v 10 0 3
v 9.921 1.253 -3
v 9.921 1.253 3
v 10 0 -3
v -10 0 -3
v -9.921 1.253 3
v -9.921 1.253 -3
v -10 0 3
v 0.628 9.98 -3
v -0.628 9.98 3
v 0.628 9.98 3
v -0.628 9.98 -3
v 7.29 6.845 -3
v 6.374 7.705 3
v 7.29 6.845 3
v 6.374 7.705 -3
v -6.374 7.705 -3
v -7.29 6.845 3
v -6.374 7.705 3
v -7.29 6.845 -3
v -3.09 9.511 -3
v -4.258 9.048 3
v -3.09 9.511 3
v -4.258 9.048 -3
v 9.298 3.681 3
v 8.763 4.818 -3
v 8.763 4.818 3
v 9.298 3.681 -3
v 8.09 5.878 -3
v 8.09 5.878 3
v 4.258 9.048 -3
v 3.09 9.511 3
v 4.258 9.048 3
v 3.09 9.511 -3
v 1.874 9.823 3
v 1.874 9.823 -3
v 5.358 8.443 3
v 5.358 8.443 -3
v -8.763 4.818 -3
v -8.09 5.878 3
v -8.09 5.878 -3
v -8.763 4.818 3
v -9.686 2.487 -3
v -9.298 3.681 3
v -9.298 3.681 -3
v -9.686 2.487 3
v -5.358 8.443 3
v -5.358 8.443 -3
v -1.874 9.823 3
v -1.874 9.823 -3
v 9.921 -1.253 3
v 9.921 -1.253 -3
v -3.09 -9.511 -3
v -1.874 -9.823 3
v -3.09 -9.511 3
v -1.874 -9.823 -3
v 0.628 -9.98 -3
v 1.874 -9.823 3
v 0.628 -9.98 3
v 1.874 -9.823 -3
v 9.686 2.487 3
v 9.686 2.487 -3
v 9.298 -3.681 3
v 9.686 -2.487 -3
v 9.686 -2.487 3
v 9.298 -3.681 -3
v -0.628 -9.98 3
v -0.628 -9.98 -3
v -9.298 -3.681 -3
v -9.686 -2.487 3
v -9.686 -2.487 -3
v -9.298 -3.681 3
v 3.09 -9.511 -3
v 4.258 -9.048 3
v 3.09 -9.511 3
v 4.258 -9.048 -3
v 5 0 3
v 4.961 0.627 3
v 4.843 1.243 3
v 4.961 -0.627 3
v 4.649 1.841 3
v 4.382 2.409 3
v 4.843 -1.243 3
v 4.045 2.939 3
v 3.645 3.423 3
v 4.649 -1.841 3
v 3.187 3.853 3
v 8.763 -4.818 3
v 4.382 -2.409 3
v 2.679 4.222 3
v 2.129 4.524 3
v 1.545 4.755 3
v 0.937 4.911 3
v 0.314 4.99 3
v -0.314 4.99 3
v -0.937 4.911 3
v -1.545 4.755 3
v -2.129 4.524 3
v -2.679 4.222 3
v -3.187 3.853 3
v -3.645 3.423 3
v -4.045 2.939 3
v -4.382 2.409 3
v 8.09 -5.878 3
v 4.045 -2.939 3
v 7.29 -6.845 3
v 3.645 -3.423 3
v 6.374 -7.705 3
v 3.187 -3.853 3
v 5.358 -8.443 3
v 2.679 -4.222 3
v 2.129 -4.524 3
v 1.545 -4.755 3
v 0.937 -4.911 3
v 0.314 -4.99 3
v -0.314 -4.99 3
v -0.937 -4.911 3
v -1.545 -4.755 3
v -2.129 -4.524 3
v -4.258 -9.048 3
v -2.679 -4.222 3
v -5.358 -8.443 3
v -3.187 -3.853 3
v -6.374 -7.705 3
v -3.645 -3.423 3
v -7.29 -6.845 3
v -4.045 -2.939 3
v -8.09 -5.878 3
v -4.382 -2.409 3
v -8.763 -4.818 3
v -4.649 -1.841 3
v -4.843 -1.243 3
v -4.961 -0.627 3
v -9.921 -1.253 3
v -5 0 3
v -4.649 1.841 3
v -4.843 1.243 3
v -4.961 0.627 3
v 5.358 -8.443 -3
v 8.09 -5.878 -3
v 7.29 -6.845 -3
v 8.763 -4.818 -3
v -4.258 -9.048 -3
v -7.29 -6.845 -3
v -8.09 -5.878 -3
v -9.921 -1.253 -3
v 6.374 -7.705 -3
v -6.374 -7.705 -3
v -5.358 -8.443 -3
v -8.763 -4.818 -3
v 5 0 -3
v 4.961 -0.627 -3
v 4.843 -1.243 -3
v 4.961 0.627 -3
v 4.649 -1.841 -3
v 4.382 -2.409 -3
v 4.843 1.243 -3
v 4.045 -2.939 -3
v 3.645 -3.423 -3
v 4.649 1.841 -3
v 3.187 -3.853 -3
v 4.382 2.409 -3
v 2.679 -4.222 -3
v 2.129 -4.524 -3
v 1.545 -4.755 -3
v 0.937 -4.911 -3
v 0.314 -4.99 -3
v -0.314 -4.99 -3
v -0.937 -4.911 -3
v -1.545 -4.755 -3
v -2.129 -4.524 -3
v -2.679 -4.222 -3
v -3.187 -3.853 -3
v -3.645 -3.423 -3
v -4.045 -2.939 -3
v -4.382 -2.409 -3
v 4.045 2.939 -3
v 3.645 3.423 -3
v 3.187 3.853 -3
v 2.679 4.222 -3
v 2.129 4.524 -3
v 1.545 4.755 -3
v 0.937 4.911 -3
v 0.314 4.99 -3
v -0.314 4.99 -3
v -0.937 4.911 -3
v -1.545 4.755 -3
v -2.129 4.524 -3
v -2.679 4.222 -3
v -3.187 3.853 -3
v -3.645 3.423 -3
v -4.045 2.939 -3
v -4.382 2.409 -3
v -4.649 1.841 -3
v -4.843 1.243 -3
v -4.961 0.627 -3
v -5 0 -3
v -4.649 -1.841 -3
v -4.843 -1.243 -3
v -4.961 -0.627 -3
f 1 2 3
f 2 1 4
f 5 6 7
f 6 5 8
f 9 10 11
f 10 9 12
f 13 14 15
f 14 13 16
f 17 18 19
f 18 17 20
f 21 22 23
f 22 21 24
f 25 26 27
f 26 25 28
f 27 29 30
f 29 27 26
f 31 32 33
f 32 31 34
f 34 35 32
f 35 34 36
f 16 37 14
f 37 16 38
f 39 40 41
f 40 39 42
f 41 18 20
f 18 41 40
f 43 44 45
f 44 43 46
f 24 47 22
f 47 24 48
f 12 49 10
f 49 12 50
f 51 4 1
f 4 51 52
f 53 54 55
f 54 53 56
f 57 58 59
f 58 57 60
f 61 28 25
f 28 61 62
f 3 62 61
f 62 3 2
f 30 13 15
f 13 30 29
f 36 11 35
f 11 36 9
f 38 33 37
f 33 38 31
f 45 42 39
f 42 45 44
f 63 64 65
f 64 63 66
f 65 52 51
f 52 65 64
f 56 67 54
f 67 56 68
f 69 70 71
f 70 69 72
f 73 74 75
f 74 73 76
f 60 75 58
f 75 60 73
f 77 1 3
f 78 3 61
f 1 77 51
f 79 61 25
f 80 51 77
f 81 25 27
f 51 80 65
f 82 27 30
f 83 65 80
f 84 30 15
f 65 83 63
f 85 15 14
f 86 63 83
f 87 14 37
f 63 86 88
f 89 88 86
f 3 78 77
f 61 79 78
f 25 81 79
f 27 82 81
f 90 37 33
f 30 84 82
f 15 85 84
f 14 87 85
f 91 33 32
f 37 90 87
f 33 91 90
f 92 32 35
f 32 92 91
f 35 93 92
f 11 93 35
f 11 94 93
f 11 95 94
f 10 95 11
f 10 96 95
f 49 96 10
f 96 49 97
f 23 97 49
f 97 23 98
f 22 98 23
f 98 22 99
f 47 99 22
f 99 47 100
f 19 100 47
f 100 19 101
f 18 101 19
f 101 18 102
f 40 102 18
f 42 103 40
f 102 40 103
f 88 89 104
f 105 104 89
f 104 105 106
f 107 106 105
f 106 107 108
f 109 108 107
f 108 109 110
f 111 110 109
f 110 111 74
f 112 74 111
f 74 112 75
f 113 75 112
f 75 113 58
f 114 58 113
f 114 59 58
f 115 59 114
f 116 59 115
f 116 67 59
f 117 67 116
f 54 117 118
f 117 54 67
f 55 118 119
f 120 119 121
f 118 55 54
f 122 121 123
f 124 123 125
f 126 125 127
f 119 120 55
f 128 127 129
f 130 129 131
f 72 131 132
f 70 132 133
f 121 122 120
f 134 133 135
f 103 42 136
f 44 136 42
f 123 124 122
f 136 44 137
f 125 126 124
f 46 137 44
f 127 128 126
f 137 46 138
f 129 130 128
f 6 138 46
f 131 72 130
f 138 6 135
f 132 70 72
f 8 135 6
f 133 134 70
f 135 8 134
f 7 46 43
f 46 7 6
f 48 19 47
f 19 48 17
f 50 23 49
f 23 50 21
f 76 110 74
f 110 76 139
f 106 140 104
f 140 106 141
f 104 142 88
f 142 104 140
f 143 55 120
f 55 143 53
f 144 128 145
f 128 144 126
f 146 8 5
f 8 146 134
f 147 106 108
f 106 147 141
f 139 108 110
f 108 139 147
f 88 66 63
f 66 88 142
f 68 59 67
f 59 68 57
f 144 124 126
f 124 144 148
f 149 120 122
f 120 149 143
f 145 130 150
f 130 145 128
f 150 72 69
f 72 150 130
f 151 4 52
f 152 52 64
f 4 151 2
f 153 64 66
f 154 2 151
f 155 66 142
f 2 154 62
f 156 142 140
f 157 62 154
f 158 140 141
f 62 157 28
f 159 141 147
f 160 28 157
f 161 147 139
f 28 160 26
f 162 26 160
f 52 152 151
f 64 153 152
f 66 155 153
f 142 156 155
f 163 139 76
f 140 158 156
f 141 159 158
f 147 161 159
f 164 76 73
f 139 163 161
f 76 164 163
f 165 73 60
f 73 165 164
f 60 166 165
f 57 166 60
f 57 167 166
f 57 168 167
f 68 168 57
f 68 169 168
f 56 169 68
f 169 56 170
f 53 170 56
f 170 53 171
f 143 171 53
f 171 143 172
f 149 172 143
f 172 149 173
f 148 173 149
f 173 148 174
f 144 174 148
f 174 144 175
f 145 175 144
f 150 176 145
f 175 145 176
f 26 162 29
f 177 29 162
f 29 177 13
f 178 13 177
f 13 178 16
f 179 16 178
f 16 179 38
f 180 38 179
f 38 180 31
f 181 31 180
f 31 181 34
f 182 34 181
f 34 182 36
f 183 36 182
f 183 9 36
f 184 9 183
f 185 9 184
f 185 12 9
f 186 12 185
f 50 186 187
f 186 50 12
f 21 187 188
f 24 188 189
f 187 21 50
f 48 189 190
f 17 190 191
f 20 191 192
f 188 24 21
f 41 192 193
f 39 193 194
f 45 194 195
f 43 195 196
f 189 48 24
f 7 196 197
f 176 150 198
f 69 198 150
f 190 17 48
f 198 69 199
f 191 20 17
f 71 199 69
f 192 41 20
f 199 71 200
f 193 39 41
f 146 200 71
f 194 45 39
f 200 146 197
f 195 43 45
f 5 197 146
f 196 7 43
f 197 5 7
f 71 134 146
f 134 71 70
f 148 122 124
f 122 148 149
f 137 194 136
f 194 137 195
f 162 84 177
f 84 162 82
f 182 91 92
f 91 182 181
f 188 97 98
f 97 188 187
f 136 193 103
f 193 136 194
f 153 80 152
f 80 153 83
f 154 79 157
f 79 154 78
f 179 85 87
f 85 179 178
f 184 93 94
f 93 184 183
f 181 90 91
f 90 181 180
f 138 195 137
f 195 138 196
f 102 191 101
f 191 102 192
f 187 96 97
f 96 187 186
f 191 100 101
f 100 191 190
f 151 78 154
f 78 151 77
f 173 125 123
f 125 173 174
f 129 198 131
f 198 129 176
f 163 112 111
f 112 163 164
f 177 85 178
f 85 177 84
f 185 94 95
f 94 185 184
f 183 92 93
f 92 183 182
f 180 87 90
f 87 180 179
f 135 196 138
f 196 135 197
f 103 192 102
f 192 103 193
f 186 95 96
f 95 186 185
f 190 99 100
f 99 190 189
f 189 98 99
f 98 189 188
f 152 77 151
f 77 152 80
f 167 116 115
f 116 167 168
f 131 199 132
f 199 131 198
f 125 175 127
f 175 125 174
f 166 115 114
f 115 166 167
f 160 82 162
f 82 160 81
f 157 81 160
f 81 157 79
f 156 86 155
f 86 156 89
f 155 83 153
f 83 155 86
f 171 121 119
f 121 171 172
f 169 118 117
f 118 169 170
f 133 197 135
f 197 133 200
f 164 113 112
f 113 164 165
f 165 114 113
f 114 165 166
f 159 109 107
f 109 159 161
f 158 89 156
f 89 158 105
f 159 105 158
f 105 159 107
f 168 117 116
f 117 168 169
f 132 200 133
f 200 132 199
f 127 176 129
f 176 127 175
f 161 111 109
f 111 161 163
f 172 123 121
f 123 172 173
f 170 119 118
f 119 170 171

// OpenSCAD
$fn = 50;


difference() {
	union() {
		translate(v = [0, 0, -3.0000000000]) {
			cylinder(h = 6, r = 10.0000000000);
		}
	}
	union() {
		translate(v = [0, 0, -100.0000000000]) {
			cylinder(h = 200, r = 5.0000000000);
		}
	}
}
